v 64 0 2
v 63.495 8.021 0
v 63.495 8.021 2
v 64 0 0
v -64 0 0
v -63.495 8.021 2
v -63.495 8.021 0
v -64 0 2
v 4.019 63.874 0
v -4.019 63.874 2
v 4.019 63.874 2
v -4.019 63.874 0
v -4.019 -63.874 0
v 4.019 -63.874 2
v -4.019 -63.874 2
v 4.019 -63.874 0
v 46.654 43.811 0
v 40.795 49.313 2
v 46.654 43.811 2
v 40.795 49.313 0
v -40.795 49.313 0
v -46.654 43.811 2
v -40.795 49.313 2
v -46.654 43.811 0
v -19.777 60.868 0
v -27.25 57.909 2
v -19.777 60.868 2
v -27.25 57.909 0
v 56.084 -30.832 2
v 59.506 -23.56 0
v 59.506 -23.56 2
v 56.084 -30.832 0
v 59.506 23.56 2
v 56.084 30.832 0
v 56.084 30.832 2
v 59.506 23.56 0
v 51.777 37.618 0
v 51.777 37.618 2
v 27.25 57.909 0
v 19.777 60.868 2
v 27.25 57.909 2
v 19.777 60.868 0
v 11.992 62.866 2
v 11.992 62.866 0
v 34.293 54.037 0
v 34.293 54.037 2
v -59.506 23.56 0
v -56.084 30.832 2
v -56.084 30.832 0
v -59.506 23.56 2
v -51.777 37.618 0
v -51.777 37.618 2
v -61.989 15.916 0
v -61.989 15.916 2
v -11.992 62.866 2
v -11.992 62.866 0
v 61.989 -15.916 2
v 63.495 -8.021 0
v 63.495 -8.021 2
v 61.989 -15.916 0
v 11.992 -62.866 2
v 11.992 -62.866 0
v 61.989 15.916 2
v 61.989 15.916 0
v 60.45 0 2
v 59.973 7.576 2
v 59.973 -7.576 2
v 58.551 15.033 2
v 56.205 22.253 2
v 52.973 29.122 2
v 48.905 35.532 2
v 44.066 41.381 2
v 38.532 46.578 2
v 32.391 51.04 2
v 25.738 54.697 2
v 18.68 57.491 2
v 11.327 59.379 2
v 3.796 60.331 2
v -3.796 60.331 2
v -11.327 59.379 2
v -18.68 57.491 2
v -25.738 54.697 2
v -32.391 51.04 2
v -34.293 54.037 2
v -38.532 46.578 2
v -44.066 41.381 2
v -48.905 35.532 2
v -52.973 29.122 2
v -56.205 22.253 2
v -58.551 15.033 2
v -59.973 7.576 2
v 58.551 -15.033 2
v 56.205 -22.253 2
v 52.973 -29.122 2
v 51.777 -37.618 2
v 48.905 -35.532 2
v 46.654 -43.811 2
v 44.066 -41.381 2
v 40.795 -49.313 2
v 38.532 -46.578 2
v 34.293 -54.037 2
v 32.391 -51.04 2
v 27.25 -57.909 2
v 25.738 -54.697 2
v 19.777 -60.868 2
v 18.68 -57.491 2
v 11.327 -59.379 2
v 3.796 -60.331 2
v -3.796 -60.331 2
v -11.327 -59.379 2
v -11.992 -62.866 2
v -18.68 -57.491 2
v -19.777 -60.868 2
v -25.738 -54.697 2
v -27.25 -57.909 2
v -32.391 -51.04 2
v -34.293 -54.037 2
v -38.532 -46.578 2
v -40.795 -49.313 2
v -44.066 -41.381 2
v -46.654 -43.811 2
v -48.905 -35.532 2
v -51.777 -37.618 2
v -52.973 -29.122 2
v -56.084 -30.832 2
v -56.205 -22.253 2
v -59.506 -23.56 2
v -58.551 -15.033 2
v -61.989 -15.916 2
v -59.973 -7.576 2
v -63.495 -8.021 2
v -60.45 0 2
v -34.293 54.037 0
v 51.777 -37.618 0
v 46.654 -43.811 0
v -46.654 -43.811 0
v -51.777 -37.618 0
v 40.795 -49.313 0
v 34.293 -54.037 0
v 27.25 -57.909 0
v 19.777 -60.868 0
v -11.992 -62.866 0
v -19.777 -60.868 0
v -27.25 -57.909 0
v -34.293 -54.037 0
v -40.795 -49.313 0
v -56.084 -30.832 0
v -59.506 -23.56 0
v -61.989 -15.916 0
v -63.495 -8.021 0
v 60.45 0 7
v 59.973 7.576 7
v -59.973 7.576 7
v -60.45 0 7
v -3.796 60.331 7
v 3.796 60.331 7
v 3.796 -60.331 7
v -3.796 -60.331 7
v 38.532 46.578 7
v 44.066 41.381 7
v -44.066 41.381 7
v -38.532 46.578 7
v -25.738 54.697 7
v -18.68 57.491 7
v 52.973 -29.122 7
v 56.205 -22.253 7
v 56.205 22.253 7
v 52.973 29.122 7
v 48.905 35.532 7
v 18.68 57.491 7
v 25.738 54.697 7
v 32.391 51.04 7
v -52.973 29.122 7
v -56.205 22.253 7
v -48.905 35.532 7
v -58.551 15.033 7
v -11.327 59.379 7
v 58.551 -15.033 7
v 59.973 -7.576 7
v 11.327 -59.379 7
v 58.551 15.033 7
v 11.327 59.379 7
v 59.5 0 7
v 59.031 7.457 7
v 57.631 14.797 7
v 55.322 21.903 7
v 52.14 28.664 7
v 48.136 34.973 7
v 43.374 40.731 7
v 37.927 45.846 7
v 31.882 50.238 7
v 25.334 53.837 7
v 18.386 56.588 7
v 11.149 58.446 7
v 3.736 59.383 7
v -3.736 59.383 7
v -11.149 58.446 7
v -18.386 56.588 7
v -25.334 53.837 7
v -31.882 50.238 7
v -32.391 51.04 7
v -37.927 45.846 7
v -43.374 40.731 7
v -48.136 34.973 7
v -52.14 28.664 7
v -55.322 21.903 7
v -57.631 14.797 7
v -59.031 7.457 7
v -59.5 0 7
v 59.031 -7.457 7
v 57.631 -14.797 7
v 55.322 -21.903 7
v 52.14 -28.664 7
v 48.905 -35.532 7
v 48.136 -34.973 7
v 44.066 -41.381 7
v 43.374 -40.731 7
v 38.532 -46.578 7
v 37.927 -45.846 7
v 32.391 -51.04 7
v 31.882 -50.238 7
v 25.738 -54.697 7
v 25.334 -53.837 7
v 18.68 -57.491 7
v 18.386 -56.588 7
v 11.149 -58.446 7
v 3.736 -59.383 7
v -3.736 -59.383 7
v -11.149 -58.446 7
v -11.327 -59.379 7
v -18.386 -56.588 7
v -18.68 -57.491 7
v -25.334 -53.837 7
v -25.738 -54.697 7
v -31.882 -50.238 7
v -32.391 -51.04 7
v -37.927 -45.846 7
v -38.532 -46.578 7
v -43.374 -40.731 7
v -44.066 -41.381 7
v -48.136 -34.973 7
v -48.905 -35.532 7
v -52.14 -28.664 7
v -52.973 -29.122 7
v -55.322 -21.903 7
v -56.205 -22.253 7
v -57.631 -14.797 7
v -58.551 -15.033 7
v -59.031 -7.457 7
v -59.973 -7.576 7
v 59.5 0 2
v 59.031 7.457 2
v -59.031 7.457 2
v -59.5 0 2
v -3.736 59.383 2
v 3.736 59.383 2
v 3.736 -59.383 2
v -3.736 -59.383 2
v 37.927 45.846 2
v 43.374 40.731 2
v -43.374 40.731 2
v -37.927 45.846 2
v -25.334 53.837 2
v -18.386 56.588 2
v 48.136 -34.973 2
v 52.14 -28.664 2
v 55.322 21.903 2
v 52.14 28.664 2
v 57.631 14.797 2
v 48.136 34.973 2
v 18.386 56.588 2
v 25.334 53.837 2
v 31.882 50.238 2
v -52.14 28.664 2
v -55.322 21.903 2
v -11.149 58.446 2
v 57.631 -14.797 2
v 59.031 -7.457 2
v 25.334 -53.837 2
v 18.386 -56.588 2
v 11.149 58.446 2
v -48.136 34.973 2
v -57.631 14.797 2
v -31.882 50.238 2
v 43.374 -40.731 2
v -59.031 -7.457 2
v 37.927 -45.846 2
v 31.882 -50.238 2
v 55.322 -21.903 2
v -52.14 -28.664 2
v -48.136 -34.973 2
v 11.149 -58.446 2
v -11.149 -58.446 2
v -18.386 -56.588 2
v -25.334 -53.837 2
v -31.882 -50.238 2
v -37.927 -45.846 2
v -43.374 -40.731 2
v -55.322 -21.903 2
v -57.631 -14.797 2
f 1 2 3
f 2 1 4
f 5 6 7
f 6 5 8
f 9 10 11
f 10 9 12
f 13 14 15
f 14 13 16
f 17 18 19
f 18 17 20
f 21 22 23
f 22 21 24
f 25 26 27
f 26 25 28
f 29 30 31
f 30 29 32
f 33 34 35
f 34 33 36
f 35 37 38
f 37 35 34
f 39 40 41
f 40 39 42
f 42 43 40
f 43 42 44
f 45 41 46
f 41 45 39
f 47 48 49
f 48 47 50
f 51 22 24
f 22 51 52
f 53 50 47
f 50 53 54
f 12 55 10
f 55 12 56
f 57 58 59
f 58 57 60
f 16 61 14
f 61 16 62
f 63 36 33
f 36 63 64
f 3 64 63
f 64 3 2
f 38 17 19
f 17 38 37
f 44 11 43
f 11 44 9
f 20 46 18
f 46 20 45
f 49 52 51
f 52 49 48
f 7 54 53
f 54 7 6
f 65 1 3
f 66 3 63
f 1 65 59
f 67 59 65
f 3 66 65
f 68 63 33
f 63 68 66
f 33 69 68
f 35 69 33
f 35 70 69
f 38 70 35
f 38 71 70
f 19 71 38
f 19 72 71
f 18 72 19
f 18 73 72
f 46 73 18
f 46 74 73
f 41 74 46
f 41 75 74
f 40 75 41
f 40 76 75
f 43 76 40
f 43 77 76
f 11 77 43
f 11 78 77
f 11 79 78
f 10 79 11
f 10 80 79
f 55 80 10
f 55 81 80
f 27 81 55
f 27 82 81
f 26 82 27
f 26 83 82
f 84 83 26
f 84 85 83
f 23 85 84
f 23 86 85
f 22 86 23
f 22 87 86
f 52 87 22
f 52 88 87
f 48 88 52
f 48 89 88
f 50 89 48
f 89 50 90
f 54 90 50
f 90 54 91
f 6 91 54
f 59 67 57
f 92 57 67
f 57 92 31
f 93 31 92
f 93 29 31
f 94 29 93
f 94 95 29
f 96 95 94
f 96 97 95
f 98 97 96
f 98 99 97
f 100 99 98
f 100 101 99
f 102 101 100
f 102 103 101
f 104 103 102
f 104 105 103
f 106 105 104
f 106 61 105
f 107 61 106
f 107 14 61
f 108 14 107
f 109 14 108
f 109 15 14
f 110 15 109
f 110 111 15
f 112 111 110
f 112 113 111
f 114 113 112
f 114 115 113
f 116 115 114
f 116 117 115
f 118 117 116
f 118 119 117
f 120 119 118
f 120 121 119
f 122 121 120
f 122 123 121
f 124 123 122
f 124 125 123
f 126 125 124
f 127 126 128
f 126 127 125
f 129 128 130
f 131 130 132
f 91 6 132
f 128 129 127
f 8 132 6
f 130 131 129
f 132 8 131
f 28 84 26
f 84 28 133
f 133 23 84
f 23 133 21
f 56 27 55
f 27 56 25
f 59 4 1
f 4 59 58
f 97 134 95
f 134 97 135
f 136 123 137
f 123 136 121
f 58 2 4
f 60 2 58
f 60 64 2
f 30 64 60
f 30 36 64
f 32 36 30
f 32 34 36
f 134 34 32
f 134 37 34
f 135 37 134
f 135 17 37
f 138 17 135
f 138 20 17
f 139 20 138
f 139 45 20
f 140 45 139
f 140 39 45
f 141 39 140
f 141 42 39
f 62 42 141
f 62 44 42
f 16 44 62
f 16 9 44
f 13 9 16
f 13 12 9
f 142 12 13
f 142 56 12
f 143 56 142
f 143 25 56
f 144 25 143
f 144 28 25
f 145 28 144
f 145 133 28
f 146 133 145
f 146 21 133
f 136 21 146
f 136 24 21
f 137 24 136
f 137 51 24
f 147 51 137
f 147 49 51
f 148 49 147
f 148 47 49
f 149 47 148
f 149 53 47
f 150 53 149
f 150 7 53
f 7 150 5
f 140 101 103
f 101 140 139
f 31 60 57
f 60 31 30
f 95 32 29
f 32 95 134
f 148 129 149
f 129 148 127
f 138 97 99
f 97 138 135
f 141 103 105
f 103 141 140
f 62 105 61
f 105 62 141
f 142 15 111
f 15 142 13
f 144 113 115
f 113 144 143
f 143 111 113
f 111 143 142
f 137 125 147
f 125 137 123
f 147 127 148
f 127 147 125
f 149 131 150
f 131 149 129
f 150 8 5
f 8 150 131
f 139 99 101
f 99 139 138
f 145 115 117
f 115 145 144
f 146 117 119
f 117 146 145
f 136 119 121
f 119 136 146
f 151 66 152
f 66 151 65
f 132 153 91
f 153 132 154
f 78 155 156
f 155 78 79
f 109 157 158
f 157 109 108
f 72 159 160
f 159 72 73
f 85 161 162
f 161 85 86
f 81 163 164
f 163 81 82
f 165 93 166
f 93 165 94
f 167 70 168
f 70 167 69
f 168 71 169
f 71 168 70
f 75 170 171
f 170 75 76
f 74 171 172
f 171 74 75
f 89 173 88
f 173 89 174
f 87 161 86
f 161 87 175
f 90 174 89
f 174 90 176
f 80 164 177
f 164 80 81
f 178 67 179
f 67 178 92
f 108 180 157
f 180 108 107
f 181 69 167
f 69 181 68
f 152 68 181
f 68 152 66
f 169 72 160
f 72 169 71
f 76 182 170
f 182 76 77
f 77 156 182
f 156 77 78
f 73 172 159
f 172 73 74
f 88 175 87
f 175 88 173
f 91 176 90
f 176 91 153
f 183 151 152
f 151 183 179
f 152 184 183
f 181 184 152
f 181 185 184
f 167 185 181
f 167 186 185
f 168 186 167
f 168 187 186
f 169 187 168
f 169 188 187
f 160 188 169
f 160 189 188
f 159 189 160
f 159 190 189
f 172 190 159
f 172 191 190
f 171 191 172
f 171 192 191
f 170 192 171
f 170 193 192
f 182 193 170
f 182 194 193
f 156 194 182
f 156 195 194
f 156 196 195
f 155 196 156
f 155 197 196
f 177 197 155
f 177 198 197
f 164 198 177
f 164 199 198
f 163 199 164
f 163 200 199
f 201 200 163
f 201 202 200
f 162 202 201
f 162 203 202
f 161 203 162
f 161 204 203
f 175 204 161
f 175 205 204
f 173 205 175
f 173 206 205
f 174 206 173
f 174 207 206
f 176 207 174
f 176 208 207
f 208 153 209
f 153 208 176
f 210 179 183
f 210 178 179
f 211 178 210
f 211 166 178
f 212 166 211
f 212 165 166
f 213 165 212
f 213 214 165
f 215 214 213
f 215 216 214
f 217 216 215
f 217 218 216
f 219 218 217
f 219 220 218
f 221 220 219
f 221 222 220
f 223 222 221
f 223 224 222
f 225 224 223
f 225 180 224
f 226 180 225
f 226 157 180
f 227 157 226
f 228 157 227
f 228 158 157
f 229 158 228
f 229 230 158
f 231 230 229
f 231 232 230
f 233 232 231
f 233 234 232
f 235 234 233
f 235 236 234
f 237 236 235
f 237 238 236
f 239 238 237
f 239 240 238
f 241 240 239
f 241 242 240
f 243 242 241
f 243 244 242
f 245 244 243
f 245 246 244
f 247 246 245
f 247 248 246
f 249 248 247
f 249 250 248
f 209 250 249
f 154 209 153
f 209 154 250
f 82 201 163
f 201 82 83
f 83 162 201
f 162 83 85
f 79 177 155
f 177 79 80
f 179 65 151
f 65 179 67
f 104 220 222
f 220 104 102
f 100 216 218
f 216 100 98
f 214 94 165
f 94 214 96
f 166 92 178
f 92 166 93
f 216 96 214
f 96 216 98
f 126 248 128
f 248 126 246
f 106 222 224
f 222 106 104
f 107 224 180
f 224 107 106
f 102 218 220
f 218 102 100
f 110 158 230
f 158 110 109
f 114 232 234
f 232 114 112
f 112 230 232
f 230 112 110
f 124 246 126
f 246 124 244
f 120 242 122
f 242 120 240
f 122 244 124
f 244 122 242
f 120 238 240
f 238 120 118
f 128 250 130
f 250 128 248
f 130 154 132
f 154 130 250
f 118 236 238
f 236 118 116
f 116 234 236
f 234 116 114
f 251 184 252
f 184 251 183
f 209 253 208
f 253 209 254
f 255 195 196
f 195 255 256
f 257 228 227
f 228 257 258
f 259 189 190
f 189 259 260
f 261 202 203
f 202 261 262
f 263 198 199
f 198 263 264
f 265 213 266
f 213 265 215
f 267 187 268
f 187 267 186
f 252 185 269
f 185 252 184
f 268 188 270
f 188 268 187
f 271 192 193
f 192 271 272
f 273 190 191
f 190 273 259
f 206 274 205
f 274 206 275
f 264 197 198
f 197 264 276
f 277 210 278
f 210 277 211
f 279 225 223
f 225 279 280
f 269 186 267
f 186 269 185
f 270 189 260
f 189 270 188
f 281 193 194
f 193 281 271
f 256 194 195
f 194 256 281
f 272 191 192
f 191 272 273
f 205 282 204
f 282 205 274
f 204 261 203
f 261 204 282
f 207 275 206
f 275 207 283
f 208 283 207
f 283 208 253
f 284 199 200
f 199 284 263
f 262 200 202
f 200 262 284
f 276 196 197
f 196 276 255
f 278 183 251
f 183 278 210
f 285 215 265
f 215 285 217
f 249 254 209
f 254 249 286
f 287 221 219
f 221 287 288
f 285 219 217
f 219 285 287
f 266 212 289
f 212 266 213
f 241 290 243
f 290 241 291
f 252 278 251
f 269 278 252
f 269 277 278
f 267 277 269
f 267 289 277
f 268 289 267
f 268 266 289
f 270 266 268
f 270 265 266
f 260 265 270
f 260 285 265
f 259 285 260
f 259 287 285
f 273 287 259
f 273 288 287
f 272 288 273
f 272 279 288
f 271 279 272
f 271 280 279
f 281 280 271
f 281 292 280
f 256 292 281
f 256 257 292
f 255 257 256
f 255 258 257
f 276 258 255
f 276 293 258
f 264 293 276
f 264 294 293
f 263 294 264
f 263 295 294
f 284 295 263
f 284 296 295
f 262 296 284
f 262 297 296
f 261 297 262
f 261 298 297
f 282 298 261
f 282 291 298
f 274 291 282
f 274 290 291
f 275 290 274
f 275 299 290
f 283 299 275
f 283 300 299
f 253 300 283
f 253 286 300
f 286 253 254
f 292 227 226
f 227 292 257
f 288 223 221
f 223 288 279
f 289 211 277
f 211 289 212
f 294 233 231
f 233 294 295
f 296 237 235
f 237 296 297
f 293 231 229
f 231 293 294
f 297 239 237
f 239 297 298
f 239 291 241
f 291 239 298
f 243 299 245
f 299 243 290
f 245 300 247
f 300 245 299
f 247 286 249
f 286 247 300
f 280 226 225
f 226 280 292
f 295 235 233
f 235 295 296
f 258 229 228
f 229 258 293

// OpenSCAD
$fn=50;
ht=156;
hb=5;
diam=123;
wall=2;

module box() {
difference() {
    union() {
        cylinder(ht,d=diam+2);
        cylinder(hb,d=diam+5);
        #translate([0,0,ht-hb]) cylinder(hb,d=diam+5);
    }
    translate([0,0,2]) cylinder(ht,d=diam);
    translate([0,0,0]) cylinder(ht,d=5);
}
}

module lid() {
    difference() {
        union() {
            cylinder(2,d=diam+5);
            cylinder(7,d=diam-2.1);
        }
        translate([0,0,2]) cylinder(ht,d=diam-4);

    }
}

//# translate([0,0,165]) rotate([180,0,0]) box();
lid();
